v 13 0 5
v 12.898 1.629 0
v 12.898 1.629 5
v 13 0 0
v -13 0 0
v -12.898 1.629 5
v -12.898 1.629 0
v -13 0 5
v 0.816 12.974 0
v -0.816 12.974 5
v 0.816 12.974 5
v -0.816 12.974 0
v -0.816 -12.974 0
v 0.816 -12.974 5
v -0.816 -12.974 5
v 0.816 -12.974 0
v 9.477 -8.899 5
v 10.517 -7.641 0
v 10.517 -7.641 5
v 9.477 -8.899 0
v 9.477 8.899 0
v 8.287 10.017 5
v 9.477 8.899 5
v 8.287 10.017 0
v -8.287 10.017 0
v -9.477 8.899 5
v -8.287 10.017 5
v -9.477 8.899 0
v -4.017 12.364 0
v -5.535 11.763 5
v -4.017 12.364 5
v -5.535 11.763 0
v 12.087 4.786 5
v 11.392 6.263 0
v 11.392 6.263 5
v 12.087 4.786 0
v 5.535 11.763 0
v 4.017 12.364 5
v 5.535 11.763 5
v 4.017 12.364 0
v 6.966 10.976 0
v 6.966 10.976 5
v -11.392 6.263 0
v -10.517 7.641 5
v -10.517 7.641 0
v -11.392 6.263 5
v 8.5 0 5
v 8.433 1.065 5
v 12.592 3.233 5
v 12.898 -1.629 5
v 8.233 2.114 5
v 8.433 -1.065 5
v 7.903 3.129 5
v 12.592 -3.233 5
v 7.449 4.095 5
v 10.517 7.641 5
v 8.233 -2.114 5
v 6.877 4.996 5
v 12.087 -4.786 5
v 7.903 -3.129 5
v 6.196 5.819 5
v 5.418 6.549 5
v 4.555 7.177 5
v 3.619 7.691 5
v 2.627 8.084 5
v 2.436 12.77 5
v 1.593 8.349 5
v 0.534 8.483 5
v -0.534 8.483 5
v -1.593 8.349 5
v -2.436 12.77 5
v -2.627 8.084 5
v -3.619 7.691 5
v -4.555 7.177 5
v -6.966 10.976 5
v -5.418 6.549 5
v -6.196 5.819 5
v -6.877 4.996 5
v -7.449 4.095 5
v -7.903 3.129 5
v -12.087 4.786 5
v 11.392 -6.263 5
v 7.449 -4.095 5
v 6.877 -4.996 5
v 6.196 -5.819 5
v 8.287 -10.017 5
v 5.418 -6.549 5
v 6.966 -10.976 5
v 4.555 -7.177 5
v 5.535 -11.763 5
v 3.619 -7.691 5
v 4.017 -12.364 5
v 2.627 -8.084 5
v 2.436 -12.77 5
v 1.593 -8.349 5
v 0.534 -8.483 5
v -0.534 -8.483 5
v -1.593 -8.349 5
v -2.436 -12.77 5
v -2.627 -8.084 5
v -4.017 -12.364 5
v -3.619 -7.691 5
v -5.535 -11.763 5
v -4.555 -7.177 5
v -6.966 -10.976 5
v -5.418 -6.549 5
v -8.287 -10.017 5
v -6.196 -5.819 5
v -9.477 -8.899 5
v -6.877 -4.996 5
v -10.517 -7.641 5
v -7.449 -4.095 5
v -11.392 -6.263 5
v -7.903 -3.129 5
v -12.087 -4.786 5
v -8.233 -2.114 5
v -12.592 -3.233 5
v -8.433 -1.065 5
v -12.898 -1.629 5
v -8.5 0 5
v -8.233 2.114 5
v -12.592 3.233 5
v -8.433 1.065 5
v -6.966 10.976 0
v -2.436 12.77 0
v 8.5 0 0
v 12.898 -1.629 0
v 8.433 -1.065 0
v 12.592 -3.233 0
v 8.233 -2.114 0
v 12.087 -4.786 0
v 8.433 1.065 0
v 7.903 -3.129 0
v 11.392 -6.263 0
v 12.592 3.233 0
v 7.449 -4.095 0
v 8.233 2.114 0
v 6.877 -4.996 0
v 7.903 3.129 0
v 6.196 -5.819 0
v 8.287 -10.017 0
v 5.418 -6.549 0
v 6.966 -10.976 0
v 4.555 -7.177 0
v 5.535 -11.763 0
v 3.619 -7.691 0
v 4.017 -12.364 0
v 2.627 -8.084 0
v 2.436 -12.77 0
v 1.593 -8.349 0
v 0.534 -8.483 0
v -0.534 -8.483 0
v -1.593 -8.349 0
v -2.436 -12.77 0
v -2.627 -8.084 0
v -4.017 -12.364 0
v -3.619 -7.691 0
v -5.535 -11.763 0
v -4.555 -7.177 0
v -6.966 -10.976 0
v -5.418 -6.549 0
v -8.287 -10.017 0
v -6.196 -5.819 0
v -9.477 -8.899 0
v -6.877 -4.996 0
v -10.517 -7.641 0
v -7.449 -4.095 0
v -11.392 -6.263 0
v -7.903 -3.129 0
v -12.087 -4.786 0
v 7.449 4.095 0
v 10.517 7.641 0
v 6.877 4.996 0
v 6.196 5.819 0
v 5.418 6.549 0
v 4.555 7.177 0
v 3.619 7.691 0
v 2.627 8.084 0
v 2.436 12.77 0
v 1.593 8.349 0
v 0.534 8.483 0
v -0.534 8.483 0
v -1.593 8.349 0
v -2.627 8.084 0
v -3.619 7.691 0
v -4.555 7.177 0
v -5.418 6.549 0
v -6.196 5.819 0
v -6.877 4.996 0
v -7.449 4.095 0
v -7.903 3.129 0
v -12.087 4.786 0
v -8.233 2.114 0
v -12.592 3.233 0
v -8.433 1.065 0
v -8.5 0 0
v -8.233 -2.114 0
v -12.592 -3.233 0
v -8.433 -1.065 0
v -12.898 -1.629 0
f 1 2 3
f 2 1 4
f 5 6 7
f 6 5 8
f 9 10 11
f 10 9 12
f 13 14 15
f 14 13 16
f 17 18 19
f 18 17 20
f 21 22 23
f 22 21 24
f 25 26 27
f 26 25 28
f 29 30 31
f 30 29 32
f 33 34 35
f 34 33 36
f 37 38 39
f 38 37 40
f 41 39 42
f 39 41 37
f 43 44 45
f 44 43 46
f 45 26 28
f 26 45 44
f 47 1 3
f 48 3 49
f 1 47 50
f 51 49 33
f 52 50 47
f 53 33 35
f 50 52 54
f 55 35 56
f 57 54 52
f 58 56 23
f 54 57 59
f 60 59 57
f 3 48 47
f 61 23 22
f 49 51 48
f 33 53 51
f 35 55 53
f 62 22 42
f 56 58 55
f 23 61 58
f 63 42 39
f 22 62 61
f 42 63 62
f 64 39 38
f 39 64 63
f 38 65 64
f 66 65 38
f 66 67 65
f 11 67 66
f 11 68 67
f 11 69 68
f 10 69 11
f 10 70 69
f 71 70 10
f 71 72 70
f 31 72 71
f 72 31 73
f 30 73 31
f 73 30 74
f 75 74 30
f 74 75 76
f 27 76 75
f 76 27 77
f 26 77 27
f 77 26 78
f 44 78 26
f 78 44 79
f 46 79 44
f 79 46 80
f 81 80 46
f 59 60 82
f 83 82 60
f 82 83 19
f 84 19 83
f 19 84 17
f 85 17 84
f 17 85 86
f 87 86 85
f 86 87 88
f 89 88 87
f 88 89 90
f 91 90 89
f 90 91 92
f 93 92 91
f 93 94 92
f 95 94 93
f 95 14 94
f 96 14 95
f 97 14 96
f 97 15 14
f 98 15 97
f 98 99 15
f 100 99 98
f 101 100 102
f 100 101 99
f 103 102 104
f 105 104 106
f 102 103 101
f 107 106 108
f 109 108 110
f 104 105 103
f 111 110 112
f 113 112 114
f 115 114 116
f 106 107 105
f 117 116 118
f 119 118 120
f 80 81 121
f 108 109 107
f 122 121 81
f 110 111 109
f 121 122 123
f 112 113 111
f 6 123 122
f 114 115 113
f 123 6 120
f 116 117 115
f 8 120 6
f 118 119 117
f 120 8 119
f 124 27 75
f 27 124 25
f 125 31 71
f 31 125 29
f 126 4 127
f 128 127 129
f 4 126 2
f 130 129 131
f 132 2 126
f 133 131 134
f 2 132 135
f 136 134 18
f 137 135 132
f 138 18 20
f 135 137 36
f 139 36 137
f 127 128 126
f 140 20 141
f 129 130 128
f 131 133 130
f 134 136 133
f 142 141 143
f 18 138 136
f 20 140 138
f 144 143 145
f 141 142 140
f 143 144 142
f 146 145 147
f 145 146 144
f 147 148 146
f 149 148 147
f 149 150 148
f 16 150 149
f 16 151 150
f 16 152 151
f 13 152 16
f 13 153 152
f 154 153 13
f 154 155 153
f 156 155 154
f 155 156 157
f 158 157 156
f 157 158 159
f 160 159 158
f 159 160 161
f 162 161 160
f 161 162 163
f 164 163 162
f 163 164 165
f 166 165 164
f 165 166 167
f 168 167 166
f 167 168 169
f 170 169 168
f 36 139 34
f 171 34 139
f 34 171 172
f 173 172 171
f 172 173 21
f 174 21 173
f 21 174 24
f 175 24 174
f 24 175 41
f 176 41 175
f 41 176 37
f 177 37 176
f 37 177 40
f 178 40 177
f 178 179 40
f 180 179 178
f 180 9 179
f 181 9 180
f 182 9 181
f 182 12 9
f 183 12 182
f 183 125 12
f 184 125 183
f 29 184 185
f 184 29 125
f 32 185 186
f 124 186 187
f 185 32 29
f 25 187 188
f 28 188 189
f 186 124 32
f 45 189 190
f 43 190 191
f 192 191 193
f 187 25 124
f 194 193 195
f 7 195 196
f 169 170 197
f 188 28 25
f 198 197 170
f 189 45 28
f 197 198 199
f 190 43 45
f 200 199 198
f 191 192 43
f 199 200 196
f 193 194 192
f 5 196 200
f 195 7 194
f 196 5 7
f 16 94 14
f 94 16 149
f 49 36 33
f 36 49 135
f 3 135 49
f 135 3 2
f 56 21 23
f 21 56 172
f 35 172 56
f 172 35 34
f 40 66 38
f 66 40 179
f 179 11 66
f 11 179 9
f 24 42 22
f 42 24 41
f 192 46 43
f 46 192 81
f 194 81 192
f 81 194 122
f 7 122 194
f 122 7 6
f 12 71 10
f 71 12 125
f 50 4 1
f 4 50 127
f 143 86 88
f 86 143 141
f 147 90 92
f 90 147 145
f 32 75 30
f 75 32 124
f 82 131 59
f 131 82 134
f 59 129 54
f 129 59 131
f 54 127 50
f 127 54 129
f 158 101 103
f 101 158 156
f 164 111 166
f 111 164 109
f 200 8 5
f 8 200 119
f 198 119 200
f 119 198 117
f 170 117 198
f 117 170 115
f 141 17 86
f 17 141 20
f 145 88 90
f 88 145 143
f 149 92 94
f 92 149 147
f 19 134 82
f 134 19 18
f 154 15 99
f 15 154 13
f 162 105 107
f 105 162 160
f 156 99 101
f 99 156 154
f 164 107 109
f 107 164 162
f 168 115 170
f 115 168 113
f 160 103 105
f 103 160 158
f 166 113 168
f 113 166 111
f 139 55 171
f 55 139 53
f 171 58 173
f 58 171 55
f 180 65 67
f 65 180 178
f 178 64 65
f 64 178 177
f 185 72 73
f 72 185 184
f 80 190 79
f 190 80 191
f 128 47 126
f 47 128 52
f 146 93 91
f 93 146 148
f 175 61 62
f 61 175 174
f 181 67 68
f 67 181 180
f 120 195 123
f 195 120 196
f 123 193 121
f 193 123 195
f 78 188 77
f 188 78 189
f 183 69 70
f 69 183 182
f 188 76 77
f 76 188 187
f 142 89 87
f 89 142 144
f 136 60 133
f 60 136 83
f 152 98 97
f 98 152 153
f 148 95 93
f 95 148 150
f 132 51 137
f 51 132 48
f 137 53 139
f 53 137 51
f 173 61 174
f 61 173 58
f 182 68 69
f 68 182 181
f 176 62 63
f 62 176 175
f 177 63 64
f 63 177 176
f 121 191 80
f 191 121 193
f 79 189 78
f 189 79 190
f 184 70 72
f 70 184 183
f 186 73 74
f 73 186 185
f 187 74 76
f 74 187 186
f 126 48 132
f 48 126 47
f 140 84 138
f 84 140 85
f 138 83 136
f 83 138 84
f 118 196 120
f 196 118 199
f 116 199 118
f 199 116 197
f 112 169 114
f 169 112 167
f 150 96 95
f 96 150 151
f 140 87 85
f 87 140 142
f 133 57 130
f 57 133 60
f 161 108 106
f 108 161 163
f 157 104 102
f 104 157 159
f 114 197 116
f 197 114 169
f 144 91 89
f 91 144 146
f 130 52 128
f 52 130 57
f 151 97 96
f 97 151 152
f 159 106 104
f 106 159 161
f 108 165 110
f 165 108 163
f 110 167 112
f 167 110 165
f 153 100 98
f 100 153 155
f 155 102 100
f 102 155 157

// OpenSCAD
$fn = 50;


difference() {
	union() {
		translate(v = [0, 0, 0]) {
			rotate(a = [0, 0, 0]) {
				cylinder(h = 5, r = 13.0000000000);
			}
		}
	}
	union() {
		translate(v = [0, 0, 0]) {
			rotate(a = [0, 0, 0]) {
				cylinder(h = 5, r = 8.5000000000);
			}
		}
	}
}
